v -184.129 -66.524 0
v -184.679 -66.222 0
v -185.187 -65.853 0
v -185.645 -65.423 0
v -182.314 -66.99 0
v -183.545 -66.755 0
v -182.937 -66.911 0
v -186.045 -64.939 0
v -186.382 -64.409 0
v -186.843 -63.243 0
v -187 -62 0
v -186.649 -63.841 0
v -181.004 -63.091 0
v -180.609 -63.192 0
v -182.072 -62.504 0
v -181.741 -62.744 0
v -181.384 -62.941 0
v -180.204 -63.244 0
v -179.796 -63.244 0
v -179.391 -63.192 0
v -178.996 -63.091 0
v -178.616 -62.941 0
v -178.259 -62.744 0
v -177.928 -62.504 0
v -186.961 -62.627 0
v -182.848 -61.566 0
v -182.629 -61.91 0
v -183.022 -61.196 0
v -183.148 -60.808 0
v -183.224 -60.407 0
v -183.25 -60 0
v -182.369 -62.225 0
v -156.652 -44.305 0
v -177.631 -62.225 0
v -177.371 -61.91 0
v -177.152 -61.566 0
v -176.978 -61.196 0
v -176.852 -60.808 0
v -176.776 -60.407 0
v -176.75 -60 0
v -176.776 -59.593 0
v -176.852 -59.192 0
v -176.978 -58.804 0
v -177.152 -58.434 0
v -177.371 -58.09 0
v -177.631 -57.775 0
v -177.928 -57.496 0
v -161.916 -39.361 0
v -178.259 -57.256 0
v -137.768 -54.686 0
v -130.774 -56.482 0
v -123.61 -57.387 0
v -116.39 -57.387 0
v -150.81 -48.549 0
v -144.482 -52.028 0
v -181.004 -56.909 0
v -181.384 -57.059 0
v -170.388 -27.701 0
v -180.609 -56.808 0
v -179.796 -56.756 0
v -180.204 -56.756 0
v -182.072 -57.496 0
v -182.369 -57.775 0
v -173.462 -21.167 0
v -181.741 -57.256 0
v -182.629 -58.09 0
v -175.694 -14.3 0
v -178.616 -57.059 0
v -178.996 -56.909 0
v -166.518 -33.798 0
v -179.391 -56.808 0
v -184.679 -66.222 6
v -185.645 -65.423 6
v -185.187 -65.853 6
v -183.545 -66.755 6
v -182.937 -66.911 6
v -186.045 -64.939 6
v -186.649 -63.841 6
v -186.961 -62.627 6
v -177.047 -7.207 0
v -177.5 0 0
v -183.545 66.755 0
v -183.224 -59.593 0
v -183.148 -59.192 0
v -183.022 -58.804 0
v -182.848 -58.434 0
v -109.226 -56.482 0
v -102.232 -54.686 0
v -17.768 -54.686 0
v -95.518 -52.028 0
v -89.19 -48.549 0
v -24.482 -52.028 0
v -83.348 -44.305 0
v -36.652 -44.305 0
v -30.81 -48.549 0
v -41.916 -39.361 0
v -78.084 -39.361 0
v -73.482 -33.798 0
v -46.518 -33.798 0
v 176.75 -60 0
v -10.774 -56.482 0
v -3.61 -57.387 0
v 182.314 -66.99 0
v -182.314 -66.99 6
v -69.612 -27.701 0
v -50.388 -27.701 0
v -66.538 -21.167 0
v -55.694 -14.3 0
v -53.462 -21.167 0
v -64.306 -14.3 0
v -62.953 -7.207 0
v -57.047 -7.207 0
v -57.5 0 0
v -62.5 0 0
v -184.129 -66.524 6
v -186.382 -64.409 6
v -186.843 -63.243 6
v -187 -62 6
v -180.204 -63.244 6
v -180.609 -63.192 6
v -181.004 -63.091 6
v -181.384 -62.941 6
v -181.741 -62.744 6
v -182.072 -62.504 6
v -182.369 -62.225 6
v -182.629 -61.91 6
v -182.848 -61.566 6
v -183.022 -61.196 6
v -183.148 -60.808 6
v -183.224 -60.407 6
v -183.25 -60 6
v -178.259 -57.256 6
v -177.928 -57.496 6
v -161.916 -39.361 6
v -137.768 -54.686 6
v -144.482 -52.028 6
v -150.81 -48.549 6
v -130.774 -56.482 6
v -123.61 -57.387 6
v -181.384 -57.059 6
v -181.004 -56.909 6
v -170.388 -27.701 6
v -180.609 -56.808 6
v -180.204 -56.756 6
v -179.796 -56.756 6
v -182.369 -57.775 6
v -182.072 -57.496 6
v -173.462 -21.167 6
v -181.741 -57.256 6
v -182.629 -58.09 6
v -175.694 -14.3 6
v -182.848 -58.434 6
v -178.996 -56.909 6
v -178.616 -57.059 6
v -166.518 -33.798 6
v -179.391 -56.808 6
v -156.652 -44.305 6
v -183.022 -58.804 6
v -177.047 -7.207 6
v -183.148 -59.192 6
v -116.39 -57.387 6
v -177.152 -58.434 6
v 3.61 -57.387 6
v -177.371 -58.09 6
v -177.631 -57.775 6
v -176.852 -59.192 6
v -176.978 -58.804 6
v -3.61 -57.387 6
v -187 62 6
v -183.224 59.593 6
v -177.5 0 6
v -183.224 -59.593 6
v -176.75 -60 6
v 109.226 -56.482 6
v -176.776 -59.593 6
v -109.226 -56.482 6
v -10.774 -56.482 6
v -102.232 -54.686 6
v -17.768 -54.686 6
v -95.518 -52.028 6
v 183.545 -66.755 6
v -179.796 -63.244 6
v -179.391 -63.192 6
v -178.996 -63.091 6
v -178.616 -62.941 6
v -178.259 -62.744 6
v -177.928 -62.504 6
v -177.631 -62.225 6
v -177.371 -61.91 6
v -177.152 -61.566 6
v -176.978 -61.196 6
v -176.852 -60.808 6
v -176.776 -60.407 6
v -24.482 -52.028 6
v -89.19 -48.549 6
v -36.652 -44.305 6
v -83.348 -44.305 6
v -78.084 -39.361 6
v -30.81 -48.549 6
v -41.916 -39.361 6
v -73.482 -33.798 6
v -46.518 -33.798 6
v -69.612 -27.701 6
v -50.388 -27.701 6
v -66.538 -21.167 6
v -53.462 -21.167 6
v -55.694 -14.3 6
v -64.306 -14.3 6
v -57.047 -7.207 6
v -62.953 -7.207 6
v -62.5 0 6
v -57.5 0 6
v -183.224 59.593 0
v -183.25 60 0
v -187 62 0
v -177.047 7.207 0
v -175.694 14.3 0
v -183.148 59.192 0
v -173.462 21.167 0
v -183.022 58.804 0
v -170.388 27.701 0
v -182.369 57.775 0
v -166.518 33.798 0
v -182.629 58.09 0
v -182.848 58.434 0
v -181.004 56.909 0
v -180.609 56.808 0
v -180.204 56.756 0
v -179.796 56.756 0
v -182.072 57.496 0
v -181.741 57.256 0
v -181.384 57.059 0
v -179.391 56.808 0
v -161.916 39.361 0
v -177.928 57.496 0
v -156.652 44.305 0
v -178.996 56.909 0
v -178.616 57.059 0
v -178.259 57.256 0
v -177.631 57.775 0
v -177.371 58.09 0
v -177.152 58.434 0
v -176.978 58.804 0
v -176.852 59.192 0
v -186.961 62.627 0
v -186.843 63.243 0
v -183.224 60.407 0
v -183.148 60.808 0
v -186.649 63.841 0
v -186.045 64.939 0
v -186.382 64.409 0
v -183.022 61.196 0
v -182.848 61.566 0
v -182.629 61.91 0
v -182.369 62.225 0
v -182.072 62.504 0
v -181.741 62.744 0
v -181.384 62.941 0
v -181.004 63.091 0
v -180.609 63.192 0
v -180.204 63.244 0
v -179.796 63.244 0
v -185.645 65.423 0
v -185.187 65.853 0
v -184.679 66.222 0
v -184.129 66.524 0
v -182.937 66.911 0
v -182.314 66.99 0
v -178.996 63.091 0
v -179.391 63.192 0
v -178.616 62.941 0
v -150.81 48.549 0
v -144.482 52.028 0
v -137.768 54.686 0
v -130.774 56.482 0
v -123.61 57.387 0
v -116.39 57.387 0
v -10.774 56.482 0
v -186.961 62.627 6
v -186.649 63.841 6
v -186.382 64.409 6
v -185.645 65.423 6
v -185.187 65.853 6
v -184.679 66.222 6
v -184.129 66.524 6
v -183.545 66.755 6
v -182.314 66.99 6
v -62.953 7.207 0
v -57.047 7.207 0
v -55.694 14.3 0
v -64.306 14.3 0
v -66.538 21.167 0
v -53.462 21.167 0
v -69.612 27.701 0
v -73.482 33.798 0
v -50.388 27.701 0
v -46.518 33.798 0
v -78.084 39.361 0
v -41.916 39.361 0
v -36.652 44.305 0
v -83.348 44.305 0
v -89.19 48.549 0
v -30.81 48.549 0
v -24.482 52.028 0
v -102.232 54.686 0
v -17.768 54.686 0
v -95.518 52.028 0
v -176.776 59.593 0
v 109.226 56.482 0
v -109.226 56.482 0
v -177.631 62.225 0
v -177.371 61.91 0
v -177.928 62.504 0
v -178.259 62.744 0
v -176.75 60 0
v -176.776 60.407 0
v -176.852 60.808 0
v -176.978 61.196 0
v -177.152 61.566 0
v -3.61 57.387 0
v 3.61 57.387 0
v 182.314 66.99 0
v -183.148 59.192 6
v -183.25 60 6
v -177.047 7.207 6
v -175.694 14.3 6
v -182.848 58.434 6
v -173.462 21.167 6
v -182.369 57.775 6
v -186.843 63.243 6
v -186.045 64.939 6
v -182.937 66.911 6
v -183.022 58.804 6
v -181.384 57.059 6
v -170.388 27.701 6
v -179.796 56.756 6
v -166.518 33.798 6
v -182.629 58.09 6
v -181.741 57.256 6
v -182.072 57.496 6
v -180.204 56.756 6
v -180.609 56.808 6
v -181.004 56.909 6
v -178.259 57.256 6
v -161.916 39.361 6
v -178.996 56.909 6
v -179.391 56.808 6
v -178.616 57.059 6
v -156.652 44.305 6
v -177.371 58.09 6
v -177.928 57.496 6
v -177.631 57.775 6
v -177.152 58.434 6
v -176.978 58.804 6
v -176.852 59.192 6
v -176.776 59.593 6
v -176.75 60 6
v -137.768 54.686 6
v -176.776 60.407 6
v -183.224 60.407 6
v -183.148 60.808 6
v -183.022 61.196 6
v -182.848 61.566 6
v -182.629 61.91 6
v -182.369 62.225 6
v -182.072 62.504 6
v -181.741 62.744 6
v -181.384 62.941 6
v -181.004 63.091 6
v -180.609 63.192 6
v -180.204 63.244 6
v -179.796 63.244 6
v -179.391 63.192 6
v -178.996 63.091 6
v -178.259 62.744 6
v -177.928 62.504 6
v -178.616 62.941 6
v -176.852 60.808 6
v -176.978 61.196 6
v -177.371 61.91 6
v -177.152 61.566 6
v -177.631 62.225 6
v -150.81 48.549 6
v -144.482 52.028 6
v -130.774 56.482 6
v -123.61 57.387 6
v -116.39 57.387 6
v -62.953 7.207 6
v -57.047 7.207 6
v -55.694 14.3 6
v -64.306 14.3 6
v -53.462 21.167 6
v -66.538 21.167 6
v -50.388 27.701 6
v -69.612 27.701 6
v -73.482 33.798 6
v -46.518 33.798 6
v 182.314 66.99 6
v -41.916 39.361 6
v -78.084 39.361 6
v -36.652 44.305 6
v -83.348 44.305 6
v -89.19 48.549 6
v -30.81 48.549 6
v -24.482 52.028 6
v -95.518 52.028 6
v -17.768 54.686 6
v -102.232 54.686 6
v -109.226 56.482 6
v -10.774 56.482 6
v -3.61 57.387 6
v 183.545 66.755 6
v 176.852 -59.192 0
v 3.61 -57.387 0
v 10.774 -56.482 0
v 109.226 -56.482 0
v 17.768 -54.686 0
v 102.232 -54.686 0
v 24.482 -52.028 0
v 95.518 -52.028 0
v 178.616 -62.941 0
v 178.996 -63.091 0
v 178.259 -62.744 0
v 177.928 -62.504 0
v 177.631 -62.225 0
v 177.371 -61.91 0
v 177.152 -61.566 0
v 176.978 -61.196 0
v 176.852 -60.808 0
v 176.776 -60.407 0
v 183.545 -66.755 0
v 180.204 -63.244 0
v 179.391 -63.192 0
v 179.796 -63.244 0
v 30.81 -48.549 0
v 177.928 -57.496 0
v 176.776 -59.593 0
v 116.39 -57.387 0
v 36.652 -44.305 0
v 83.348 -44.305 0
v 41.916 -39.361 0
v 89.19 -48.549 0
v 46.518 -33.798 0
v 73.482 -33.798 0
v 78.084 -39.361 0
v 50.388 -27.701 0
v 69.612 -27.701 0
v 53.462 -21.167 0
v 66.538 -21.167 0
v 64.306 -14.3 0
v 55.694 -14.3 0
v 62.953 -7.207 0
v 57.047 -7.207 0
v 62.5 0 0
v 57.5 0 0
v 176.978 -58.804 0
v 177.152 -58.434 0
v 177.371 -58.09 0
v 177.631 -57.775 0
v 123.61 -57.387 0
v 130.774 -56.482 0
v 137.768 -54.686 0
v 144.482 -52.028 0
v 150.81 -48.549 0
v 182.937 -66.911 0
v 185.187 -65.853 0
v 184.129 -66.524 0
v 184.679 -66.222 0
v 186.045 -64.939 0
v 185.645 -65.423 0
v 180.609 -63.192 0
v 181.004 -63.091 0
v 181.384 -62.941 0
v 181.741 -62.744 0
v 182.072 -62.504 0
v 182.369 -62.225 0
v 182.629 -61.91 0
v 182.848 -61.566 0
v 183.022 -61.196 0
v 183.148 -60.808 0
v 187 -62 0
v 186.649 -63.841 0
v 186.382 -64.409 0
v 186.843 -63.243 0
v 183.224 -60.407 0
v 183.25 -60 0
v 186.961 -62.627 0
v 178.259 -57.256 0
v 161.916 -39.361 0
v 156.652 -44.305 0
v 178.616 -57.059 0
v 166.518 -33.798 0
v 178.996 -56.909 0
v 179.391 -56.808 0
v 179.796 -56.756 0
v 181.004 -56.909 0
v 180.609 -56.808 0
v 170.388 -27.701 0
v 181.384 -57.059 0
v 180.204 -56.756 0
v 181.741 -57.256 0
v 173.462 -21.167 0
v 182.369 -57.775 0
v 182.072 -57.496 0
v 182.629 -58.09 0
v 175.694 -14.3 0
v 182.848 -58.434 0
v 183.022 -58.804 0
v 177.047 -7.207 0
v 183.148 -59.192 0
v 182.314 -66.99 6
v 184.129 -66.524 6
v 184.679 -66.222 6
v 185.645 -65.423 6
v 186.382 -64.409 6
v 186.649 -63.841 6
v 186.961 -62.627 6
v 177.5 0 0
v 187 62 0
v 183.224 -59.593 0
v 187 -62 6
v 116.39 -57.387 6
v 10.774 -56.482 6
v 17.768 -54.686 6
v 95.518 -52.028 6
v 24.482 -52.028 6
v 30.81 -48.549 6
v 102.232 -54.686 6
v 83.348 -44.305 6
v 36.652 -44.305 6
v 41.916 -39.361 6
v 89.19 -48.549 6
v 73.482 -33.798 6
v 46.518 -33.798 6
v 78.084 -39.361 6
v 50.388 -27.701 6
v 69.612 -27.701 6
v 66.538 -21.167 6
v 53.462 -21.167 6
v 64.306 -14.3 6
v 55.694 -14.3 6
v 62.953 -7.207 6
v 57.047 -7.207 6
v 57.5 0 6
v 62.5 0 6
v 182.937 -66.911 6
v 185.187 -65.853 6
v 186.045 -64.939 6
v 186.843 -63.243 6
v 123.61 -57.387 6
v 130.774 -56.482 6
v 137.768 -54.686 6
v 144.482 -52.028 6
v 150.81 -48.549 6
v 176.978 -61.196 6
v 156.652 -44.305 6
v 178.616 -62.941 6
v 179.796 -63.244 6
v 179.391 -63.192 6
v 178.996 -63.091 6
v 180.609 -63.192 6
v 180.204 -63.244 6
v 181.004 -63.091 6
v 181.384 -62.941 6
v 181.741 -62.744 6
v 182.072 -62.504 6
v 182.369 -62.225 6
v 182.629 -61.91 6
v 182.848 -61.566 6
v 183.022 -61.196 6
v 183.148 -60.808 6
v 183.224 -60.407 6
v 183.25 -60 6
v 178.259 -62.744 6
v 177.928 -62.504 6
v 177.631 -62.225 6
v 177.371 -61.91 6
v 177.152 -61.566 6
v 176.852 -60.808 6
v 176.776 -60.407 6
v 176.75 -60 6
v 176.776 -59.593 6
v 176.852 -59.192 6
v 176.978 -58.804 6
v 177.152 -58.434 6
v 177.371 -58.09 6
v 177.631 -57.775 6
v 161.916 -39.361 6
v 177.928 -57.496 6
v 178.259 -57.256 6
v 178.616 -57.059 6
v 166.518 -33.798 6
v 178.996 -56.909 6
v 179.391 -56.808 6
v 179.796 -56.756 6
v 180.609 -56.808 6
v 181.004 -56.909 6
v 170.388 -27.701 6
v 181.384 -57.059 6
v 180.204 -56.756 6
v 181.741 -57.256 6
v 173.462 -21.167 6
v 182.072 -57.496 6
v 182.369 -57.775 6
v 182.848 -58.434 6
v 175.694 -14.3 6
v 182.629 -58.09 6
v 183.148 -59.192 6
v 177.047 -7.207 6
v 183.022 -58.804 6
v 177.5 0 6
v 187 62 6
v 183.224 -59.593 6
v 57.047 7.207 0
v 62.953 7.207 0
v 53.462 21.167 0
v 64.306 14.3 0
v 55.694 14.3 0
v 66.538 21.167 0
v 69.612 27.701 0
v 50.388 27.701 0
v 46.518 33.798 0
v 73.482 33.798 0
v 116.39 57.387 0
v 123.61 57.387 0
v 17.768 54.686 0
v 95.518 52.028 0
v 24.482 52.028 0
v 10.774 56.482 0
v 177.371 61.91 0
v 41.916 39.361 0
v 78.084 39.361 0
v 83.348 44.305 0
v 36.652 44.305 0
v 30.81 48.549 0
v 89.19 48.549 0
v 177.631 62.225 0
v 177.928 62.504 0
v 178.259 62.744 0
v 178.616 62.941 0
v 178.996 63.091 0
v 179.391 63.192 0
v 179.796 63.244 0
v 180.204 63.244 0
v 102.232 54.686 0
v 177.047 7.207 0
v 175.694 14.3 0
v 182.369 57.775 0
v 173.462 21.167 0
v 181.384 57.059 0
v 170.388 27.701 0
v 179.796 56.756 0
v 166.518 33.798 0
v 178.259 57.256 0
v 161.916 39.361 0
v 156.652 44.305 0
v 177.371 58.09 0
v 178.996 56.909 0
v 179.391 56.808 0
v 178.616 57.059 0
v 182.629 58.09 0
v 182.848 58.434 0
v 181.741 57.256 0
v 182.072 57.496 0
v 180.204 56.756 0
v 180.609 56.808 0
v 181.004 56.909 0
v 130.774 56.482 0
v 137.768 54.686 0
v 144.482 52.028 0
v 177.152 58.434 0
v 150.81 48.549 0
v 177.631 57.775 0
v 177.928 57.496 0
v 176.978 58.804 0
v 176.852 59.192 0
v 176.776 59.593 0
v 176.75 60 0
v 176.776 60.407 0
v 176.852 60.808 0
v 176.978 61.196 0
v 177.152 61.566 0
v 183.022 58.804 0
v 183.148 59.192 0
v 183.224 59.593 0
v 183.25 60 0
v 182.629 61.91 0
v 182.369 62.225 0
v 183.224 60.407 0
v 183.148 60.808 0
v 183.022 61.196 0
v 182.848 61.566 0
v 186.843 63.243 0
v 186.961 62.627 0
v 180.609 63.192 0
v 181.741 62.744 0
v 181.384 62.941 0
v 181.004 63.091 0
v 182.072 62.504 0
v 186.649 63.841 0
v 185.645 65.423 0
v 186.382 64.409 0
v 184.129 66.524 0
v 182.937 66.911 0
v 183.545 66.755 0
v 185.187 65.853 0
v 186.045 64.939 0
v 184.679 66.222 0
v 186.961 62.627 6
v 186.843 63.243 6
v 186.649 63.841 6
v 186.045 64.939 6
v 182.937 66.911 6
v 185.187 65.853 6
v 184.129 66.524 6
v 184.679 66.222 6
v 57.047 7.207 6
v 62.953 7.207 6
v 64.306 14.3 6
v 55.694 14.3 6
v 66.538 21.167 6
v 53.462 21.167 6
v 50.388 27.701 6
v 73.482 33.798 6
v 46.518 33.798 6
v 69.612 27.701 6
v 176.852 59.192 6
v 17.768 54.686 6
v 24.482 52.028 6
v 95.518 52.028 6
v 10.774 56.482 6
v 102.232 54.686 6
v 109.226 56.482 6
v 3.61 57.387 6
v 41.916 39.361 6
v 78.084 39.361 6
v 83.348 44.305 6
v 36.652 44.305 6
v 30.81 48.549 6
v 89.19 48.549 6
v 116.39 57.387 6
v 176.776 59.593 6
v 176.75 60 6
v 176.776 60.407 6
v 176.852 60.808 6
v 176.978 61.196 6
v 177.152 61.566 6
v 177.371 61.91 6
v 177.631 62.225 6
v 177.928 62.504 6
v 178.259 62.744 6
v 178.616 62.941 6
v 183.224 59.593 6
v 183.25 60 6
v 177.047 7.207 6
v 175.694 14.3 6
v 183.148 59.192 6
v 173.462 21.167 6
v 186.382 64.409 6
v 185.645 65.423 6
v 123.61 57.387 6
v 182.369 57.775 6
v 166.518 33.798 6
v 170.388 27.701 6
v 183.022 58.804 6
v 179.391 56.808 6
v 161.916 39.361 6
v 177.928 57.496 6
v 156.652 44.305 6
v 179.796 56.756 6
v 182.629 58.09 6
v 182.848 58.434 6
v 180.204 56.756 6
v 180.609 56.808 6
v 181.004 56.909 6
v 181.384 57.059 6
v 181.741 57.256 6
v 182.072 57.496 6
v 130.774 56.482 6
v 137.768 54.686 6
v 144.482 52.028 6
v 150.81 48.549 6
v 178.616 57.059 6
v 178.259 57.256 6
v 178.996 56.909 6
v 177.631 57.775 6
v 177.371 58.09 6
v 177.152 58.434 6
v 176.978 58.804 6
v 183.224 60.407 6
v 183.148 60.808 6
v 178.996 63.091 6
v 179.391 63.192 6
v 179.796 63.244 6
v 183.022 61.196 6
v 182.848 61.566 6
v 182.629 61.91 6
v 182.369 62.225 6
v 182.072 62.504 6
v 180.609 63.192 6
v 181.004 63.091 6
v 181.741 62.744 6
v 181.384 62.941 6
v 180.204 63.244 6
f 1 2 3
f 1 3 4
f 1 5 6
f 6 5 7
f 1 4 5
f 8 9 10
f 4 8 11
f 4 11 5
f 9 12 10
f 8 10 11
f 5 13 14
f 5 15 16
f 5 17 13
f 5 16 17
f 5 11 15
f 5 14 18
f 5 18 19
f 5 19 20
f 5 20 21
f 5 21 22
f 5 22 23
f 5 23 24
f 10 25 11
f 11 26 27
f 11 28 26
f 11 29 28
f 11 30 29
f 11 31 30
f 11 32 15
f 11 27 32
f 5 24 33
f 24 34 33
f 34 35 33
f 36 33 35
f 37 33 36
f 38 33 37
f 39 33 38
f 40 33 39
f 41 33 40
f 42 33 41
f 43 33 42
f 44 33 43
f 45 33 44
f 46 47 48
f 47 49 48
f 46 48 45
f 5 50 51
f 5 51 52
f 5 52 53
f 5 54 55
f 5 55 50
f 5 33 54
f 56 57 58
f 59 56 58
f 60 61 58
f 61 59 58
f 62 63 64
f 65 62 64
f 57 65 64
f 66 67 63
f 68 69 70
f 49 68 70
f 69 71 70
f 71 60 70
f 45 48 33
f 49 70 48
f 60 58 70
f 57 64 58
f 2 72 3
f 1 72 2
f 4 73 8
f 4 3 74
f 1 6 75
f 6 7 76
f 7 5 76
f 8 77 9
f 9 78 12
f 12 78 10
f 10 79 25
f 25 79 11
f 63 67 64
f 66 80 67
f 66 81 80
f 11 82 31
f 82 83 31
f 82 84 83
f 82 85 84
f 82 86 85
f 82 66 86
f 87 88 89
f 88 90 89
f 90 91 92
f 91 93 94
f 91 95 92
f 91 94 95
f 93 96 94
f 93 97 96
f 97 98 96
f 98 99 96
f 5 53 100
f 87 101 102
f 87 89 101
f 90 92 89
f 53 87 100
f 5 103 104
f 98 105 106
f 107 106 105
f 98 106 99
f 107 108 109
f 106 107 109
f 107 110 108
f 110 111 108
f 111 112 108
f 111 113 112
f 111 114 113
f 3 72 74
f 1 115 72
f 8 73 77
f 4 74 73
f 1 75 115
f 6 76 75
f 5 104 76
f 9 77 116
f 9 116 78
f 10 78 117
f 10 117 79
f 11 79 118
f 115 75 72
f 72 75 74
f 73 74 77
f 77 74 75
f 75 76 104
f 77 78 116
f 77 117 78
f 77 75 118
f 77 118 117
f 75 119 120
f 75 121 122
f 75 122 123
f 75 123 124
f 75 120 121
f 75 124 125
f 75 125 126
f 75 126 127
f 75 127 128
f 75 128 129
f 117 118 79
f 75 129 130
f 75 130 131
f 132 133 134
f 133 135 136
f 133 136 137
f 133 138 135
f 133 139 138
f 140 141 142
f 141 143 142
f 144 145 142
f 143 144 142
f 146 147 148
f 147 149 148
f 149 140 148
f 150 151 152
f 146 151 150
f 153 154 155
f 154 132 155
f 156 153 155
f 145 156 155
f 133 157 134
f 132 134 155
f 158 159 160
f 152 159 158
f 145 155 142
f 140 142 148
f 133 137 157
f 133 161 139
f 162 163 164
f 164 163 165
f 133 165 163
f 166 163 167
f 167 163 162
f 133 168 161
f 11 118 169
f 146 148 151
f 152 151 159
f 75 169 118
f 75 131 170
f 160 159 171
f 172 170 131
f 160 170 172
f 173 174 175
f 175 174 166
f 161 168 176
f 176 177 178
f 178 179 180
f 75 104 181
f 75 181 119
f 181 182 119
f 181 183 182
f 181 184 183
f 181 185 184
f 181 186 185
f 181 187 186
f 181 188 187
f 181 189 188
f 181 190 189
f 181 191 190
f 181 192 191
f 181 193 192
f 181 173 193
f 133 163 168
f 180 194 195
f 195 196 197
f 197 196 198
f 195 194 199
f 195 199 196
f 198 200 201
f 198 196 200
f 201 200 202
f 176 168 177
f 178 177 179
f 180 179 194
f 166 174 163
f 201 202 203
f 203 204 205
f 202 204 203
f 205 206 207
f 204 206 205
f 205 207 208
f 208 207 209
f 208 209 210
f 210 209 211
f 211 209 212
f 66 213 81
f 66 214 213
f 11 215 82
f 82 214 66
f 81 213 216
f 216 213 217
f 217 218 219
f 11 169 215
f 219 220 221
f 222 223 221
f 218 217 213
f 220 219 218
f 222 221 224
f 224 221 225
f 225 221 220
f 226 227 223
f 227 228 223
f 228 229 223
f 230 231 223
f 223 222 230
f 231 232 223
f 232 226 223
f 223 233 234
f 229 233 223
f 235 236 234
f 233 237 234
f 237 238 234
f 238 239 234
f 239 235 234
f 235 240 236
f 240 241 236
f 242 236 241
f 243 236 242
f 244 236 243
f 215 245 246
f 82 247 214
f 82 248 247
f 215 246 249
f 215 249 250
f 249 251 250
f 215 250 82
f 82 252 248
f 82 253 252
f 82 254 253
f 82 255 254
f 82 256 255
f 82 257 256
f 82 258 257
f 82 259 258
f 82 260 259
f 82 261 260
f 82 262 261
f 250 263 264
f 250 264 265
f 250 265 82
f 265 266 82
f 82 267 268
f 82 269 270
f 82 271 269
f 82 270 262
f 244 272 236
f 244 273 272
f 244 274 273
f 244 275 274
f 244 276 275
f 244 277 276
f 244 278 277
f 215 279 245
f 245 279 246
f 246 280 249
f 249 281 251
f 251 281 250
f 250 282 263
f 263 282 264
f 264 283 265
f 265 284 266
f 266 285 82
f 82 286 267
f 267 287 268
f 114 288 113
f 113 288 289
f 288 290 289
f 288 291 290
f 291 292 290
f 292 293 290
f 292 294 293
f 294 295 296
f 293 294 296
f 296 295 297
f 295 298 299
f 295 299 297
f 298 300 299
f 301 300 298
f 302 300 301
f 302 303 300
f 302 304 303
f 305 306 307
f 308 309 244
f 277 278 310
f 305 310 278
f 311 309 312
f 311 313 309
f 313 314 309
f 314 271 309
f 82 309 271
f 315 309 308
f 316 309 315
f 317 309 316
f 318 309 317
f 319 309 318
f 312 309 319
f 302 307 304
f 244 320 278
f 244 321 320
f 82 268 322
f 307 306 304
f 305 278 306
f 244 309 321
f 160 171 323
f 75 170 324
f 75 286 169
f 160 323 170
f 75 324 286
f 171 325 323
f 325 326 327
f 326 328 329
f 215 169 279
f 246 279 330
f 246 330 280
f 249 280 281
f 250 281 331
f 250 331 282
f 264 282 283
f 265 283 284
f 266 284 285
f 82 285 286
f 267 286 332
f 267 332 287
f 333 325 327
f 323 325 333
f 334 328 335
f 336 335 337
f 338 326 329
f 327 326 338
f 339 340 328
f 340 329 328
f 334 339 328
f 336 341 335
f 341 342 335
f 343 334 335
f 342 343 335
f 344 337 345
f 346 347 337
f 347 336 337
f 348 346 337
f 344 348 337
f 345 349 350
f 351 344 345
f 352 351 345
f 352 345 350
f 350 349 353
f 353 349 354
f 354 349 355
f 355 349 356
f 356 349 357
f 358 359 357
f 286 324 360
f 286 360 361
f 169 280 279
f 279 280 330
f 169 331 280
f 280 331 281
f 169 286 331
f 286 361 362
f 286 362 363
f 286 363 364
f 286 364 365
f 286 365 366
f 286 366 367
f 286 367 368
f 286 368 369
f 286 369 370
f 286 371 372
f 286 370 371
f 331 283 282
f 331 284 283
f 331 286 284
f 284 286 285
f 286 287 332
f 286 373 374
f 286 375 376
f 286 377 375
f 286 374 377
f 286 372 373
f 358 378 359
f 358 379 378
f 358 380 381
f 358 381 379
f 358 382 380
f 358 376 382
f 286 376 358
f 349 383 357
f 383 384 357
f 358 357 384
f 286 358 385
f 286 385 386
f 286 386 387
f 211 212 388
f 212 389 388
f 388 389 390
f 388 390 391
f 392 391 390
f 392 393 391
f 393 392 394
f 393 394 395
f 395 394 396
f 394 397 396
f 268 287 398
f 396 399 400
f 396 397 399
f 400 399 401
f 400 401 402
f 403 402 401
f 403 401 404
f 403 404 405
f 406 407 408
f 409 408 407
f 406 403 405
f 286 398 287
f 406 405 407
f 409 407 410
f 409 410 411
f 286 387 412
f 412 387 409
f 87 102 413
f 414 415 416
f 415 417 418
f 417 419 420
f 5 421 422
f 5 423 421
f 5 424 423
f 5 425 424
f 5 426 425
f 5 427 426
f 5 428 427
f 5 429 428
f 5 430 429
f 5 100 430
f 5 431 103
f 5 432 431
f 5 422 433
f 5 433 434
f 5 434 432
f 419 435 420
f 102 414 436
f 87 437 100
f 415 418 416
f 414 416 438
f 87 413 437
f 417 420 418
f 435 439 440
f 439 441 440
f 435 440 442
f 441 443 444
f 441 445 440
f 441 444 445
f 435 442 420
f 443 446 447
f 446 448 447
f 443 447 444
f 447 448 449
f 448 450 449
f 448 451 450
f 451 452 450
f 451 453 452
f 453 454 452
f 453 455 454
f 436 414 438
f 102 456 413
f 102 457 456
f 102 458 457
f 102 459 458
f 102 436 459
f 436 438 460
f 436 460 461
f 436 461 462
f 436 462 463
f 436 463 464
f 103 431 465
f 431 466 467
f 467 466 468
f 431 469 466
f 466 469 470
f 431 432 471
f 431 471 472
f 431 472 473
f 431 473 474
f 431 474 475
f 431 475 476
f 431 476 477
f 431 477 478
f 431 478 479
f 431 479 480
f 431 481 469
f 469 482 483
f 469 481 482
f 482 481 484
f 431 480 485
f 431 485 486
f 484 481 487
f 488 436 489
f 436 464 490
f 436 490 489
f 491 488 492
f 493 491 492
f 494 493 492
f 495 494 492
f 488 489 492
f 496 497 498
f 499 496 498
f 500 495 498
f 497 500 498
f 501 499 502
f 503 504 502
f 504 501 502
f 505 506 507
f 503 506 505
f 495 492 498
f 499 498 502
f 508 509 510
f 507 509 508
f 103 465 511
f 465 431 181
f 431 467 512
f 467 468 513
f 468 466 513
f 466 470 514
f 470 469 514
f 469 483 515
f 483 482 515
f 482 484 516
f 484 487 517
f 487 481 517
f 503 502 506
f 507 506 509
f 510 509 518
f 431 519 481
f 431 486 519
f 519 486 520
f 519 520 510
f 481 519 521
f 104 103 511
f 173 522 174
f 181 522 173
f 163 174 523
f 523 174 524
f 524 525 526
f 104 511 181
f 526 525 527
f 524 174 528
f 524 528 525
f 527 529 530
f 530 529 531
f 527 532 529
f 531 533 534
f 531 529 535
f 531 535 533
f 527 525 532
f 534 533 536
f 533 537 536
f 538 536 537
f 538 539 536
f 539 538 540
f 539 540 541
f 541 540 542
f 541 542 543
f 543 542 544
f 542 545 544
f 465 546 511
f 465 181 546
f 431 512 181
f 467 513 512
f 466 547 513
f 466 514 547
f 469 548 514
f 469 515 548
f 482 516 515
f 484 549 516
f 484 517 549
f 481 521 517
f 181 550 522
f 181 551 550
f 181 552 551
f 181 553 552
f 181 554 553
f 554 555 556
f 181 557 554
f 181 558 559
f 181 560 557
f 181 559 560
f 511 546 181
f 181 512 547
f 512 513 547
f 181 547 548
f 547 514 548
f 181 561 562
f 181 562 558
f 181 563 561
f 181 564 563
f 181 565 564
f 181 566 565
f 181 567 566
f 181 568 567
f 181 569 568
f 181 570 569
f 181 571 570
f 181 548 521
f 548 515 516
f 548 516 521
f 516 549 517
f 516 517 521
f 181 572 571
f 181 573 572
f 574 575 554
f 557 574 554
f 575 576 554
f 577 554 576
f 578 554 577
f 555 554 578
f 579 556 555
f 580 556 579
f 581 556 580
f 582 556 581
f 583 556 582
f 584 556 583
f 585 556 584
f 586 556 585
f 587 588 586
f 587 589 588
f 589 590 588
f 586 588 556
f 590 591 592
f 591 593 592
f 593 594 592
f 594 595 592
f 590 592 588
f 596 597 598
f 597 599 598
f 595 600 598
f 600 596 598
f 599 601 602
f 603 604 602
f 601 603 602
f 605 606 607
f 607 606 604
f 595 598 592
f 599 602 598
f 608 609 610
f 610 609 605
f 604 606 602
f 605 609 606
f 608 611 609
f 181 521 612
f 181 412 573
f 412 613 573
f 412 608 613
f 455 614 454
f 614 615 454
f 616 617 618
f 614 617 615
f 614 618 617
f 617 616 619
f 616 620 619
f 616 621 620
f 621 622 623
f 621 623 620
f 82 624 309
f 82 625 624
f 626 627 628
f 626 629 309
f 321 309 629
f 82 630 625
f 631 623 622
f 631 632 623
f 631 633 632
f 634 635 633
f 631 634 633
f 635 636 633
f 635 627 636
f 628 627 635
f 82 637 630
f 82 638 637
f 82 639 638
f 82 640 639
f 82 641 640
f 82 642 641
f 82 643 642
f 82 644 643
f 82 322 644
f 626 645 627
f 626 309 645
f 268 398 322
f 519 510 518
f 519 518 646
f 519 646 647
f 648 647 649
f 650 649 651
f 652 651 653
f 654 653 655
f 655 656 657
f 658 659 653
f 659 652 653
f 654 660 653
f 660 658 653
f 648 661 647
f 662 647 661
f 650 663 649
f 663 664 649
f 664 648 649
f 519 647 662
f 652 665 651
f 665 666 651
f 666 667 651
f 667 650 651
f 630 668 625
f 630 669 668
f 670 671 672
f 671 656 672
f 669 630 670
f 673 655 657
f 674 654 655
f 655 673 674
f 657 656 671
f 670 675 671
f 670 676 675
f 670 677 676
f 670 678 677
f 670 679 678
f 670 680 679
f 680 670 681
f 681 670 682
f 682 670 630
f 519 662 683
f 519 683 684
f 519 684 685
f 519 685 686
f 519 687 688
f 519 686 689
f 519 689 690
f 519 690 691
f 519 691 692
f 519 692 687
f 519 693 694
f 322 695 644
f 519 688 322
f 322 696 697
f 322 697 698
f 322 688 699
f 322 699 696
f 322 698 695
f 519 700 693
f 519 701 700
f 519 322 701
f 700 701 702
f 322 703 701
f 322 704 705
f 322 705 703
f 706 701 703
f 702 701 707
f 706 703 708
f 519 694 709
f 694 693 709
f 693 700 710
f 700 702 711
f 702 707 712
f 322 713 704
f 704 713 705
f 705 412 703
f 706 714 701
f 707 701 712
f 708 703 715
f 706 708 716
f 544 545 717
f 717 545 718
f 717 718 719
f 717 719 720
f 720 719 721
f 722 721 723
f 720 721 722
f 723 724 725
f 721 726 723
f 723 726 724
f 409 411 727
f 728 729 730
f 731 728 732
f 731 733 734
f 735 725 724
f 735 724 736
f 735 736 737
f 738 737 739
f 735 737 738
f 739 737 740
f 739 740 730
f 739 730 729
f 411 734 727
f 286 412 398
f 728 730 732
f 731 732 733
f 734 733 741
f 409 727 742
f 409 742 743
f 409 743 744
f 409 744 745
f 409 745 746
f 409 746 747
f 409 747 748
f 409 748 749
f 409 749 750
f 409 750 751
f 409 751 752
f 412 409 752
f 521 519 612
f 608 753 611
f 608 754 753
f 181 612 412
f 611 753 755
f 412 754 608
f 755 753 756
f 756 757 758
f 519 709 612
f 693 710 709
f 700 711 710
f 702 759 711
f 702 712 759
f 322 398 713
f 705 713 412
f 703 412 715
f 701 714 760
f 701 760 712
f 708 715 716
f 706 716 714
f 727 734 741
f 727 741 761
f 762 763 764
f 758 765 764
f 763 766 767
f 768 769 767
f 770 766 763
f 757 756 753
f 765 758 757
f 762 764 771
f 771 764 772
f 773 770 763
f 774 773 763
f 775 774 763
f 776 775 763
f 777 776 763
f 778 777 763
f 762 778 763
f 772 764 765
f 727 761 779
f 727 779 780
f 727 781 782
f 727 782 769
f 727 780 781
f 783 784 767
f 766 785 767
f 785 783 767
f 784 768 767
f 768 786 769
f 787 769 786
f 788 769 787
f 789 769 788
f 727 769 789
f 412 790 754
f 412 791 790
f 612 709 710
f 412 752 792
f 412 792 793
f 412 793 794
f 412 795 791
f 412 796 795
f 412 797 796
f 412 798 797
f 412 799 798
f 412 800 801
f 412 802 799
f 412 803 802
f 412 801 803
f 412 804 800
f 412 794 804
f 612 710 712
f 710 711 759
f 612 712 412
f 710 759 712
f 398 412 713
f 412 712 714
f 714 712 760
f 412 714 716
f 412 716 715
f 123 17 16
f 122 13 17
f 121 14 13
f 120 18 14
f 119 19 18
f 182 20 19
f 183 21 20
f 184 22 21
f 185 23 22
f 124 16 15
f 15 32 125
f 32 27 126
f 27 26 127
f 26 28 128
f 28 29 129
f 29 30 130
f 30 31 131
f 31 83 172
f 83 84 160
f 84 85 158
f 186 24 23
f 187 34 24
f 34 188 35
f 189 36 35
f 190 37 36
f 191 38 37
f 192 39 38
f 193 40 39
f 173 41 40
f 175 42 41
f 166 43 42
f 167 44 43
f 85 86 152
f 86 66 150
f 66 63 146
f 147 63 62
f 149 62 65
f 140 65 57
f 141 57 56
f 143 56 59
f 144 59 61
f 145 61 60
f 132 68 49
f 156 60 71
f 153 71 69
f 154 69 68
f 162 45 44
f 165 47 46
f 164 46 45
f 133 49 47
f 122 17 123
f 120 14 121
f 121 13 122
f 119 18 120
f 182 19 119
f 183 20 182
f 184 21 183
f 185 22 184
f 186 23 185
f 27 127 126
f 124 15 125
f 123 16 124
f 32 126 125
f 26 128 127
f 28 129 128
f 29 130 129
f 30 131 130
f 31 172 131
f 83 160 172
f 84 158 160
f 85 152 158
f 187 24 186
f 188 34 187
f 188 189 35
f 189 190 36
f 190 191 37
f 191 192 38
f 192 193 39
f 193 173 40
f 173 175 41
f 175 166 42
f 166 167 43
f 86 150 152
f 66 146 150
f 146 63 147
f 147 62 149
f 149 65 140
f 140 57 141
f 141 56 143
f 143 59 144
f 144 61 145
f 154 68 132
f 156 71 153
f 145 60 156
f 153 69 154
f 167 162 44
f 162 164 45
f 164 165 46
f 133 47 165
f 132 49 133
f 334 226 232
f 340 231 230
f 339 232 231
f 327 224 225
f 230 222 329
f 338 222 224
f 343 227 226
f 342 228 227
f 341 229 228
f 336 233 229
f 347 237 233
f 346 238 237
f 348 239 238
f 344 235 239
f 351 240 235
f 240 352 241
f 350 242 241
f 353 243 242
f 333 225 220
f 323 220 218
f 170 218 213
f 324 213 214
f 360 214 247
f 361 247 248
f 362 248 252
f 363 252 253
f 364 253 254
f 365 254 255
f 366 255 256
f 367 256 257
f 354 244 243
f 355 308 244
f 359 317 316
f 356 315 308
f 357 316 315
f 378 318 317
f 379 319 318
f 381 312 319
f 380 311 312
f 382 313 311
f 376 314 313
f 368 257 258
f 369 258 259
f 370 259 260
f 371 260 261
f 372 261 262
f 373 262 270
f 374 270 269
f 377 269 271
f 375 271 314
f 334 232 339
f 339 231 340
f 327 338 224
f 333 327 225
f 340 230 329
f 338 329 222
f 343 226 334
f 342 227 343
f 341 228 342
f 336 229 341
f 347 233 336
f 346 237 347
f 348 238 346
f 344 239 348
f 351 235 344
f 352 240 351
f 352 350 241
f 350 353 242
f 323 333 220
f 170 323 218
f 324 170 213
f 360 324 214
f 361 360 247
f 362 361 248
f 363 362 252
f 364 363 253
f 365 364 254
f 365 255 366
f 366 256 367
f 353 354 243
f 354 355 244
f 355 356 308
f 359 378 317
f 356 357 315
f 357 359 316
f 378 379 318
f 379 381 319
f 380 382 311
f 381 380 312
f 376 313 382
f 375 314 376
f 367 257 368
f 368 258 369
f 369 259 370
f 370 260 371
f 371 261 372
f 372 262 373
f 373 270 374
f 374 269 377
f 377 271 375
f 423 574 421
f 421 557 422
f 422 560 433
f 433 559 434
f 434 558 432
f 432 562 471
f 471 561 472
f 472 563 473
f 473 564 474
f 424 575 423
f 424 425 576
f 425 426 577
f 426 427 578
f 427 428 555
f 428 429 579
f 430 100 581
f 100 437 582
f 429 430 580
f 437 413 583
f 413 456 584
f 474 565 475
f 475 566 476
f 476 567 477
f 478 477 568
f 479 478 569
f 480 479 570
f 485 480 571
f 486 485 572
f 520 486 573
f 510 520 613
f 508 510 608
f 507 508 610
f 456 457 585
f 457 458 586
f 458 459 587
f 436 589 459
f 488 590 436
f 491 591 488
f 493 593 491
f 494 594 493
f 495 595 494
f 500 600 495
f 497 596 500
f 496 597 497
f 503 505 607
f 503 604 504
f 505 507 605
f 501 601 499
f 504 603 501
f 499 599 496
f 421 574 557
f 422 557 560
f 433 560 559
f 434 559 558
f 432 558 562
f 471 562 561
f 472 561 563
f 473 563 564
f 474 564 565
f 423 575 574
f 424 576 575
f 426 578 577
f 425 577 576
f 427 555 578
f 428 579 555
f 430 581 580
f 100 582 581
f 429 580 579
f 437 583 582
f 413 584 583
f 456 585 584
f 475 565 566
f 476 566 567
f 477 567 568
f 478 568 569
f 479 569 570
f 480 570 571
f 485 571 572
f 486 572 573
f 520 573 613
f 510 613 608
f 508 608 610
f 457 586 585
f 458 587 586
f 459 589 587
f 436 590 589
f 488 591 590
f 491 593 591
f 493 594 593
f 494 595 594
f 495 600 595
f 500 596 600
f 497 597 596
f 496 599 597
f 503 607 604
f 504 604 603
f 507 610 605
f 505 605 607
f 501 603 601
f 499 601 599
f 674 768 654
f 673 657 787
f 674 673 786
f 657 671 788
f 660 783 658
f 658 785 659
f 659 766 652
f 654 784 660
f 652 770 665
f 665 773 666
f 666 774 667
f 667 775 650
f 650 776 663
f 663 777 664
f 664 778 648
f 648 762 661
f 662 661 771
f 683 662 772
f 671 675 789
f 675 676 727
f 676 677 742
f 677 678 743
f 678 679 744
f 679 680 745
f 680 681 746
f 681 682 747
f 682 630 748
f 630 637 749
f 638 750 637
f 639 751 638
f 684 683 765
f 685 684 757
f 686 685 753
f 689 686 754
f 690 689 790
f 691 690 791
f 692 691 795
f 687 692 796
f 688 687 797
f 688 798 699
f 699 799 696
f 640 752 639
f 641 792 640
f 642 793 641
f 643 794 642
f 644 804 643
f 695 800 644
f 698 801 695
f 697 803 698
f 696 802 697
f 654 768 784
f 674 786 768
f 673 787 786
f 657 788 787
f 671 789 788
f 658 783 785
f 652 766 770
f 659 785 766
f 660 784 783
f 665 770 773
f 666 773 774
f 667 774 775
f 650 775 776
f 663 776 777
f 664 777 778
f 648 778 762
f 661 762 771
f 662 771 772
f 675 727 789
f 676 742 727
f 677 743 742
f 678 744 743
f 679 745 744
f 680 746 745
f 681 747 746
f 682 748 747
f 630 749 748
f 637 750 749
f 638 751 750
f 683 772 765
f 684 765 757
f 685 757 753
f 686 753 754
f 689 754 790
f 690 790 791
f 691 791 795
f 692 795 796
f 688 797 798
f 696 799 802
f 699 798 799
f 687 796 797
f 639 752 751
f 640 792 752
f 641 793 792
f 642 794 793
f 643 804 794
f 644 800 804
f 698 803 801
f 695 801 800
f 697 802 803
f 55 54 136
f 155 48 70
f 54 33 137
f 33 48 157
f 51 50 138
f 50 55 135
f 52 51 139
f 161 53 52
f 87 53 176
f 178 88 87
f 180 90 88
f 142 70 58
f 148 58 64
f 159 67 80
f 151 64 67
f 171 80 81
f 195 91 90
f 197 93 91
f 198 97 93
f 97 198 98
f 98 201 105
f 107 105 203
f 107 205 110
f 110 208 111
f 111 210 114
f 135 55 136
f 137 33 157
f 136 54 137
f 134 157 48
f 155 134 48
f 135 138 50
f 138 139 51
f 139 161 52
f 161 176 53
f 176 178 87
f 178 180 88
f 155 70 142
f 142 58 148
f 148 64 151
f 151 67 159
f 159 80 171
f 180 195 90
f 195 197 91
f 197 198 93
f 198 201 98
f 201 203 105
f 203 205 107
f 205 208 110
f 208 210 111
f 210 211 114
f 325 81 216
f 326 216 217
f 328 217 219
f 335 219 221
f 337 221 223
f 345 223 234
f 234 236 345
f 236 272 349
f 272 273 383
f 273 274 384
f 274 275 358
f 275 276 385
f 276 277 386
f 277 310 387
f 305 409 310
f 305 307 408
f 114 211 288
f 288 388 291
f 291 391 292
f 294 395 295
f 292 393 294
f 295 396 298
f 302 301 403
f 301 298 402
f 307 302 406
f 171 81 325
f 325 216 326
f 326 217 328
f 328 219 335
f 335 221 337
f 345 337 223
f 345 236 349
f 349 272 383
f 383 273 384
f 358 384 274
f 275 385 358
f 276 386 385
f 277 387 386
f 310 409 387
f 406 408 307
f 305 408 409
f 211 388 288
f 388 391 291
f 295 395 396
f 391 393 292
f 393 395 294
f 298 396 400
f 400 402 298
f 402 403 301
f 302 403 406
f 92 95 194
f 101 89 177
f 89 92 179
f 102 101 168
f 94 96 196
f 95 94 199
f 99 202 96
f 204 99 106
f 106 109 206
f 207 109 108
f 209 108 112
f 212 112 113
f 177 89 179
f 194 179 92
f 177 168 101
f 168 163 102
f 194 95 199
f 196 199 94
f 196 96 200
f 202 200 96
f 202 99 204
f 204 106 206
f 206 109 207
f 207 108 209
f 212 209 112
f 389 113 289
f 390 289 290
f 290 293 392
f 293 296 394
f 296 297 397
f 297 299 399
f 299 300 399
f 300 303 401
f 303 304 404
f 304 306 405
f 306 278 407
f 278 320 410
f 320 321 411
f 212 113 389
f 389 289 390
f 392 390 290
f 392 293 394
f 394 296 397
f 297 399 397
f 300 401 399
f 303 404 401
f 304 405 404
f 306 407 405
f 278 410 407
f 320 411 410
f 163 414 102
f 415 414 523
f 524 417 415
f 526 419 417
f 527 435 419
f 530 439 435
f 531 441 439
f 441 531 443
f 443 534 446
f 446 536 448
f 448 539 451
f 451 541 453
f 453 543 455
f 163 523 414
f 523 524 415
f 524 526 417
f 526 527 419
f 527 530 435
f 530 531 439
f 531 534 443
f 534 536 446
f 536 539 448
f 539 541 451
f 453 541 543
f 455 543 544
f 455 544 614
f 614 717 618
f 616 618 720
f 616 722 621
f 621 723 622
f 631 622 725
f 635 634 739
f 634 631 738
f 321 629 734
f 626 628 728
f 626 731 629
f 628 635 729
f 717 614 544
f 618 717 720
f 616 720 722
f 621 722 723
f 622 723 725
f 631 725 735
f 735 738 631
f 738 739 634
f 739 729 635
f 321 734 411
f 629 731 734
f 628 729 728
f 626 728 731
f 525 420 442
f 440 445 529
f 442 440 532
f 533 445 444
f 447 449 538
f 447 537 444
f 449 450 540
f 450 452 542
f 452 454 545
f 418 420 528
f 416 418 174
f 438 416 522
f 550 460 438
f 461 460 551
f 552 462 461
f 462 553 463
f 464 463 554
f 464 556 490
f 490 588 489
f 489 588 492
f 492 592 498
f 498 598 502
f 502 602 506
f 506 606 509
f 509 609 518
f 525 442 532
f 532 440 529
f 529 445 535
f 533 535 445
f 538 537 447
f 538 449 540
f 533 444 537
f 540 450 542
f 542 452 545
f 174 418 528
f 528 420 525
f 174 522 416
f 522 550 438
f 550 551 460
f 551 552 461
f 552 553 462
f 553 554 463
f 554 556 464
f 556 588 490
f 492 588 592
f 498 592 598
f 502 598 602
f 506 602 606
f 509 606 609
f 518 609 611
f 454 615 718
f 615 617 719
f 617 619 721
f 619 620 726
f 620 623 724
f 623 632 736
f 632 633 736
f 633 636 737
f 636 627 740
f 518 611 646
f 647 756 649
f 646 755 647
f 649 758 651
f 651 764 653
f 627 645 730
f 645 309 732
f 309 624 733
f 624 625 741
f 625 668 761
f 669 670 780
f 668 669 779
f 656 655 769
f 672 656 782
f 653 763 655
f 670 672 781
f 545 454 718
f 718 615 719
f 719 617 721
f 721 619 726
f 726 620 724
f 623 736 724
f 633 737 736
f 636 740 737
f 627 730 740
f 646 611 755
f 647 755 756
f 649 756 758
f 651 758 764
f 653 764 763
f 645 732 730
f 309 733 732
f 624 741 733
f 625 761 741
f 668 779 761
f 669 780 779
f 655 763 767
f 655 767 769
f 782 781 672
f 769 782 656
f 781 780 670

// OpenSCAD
$fn = 50;

difference() {
	union() {
		hull() {
			translate(v = [-182.0, 62.0, 0]) {
				cylinder(h = 6, r = 5);
			}
			translate(v = [182.0, 62.0, 0]) {
				cylinder(h = 6, r = 5);
			}
			translate(v = [-182.0, -62.0, 0]) {
				cylinder(h = 6, r = 5);
			}
			translate(v = [182.0, -62.0, 0]) {
				cylinder(h = 6, r = 5);
			}
		}
	}
	union() {
		translate(v = [-180.0, -60.0, -100.0]) {
			cylinder(h = 200, r = 3.25);
		}
		translate(v = [-180.0, 60.0, -100.0]) {
			cylinder(h = 200, r = 3.25);
		}
		translate(v = [180.0, -60.0, -100.0]) {
			cylinder(h = 200, r = 3.25);
		}
		translate(v = [180.0, 60.0, -100.0]) {
			cylinder(h = 200, r = 3.25);
		}
		translate(v = [-180.0, -60.0, -100.0]) {
			cylinder(h = 200, r = 1.8);
		}
		translate(v = [-180.0, 60.0, -100.0]) {
			cylinder(h = 200, r = 1.8);
		}
		translate(v = [180.0, -60.0, -100.0]) {
			cylinder(h = 200, r = 1.8);
		}
		translate(v = [180.0, 60.0, -100.0]) {
			cylinder(h = 200, r = 1.8);
		}
		translate(v = [-120.0, 0, 0.0]) {
			cylinder(h = 6, r = 57.5);
		}
		cylinder(h = 6, r = 57.5);
		translate(v = [120.0, 0, 0.0]) {
			cylinder(h = 6, r = 57.5);
		}
	}
}
